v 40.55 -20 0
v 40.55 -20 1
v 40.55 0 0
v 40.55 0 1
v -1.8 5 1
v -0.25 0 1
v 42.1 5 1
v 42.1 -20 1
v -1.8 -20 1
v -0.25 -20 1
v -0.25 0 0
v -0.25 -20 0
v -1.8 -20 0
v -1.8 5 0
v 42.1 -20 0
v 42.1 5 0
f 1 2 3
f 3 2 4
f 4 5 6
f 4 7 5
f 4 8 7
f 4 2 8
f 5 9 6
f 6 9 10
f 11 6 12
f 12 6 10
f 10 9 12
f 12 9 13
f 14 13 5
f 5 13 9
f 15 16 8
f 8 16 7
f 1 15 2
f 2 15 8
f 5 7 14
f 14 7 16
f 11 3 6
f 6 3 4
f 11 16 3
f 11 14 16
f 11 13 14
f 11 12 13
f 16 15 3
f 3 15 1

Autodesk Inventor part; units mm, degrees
ref_plane "YZ Plane" through (0, 0, 0) normal (1, 0, 0) x (0, 1, 0)
ref_plane "XZ Plane" through (0, 0, 0) normal (0, 1, 0) x (-1, 0, 0)
ref_plane "XY Plane" through (0, 0, 0) normal (0, 0, 1) x (1, 0, 0)
sketch "Sketch1" plane through (0, 0, 0) normal (0, 0, 1) x (1, 0, 0)
  line L0 (-6.8, -3.1) -> (-5.8439, -3.1)
  arc A0 (-5.8439, -5.5) -> (-5.8439, -3.1) centre (-4, -4.3) ccw
  line L1 (-5.8439, -5.5) -> (-6.8, -5.5)
  line L2 (-6.8, -5.5) -> (-6.8, -3.1)
  line L3 (-6.8, -16.9) -> (-6.8, -14.5)
  line L4 (-5.8439, -14.5) -> (-6.8, -14.5)
  arc A1 (-5.8439, -16.9) -> (-5.8439, -14.5) centre (-4, -15.7) ccw
  line L5 (-5.8439, -16.9) -> (-6.8, -16.9)
  arc A2 (47.1, 2) -> (44.1, 5) centre (44.1, 2) ccw
  line L6 (44.1, 5) -> (-5.8, 5)
  arc A3 (-5.8, 5) -> (-8.8, 2) centre (-5.8, 2) ccw
  line L7 (-8.8, -3.3038) -> (-8.8, 2)
  spline S0 degree 3 poles (-11.8, -8.5) (-11.3844, -8.0844) (-10.926, -7.6277) (-10.0868, -6.6554) (-9.7097, -6.1367) (-9.2499, -5.2825) (-9.0837, -4.8972) (-8.8584, -4.0991) (-8.8, -3.6862) (-8.8, -3.3038) knots 0 0 0 0 0.176344 0.176344 0.352688 0.352688 0.467383 0.467383 0.582078 0.582078 0.582078 0.582078
  line L8 (-71, -8.5) -> (-11.8, -8.5)
  arc A4 (-71, -11.5) -> (-71, -8.5) centre (-71.8, -10) ccw
  line L9 (-11.8, -11.5) -> (-71, -11.5)
  spline S1 degree 3 poles (-8.8, -16.6962) (-8.8, -16.3138) (-8.8584, -15.9009) (-9.0837, -15.1028) (-9.2499, -14.7175) (-9.7097, -13.8633) (-10.0868, -13.3446) (-10.926, -12.3723) (-11.3844, -11.9156) (-11.8, -11.5) knots 1.516597 1.516597 1.516597 1.516597 1.631292 1.631292 1.745986 1.745986 1.922331 1.922331 2.098675 2.098675 2.098675 2.098675
  line L10 (-8.8, -17) -> (-8.8, -16.6962)
  arc A5 (-8.8, -17) -> (-5.8, -20) centre (-5.8, -17) ccw
  line L11 (-5.8, -20) -> (0, -20)
  line L12 (0, -20) -> (0, 0)
  line L13 (0, 0) -> (40.3, 0)
  line L14 (40.3, -20) -> (40.3, 0)
  line L15 (47.1, -20) -> (40.3, -20)
  line L16 (47.1, -16.9) -> (47.1, -20)
  line L17 (47.1, -16.9) -> (46.1439, -16.9)
  arc A6 (46.1439, -14.5) -> (46.1439, -16.9) centre (44.3, -15.7) ccw
  line L18 (46.1439, -14.5) -> (47.1, -14.5)
  line L19 (47.1, -5.5) -> (47.1, -14.5)
  line L20 (47.1, -5.5) -> (46.1439, -5.5)
  arc A7 (46.1439, -3.1) -> (46.1439, -5.5) centre (44.3, -4.3) ccw
  line L21 (46.1439, -3.1) -> (47.1, -3.1)
  line L22 (47.1, -3.1) -> (47.1, 2)
extrude "Extrusion1" add sketch "Sketch1" along normal blind 1
sketch "Sketch2" plane through (0, 0, 1) normal (0, 0, 1) x (1, 0, 0)
  line L0 (-6.8, -14.5) -> (-5.8439, -14.5) projected
  arc A0 (-5.8439, -16.9) -> (-5.8439, -14.5) centre (-4, -15.7) ccw projected
  line L1 (-5.8439, -16.9) -> (-6.8, -16.9) projected
  line L2 (-6.8, -16.9) -> (-6.8, -14.5) projected
  arc A1 (-5.8439, -5.5) -> (-5.8439, -3.1) centre (-4, -4.3) ccw projected
  line L3 (-5.8439, -5.5) -> (-6.8, -5.5) projected
  line L4 (-6.8, -5.5) -> (-6.8, -3.1) projected
  line L5 (-6.8, -3.1) -> (-5.8439, -3.1) projected
  line L6 (-1.8, 10.0452) -> (-75.924, 10.0452)
  line L7 (-75.924, 10.0452) -> (-75.924, -24.7516)
  line L8 (-75.924, -24.7516) -> (-1.8, -24.7516)
  line L9 (-1.8, -24.7516) -> (-1.8, 10.0452)
  line L10 (42.1, 14.1949) -> (61.4451, 14.1949)
  line L11 (61.4451, 14.1949) -> (61.4451, -26.9512)
  line L12 (61.4451, -26.9512) -> (42.1, -26.9512)
  line L13 (42.1, -26.9512) -> (42.1, 14.1949)
extrude "Extrusion2" cut sketch "Sketch2" against normal blind 1
sketch "Sketch3" plane through (0, -20, 0) normal (1, 0, 0) x (0, 0, -1)
  line L0 (0, 0) -> (0, 20) projected
  line L1 (0, 20) -> (-1, 20) projected
  line L2 (-1, 0) -> (-1, 20) projected
  line L3 (0, 0) -> (-1, 0) projected
extrude "Extrusion3" cut sketch "Sketch3" against normal blind 0.25
sketch "Sketch4" plane through (40.3, -20, 0) normal (-1, 0, 0) x (0, 0, 1)
  line L0 (0, 20) -> (0, 0) projected
  line L1 (0, 0) -> (1, 0) projected
  line L2 (1, 20) -> (1, 0) projected
  line L3 (0, 20) -> (1, 20) projected
extrude "Extrusion4" cut sketch "Sketch4" against normal blind 0.25
properties part number "Fork2DimTest"
